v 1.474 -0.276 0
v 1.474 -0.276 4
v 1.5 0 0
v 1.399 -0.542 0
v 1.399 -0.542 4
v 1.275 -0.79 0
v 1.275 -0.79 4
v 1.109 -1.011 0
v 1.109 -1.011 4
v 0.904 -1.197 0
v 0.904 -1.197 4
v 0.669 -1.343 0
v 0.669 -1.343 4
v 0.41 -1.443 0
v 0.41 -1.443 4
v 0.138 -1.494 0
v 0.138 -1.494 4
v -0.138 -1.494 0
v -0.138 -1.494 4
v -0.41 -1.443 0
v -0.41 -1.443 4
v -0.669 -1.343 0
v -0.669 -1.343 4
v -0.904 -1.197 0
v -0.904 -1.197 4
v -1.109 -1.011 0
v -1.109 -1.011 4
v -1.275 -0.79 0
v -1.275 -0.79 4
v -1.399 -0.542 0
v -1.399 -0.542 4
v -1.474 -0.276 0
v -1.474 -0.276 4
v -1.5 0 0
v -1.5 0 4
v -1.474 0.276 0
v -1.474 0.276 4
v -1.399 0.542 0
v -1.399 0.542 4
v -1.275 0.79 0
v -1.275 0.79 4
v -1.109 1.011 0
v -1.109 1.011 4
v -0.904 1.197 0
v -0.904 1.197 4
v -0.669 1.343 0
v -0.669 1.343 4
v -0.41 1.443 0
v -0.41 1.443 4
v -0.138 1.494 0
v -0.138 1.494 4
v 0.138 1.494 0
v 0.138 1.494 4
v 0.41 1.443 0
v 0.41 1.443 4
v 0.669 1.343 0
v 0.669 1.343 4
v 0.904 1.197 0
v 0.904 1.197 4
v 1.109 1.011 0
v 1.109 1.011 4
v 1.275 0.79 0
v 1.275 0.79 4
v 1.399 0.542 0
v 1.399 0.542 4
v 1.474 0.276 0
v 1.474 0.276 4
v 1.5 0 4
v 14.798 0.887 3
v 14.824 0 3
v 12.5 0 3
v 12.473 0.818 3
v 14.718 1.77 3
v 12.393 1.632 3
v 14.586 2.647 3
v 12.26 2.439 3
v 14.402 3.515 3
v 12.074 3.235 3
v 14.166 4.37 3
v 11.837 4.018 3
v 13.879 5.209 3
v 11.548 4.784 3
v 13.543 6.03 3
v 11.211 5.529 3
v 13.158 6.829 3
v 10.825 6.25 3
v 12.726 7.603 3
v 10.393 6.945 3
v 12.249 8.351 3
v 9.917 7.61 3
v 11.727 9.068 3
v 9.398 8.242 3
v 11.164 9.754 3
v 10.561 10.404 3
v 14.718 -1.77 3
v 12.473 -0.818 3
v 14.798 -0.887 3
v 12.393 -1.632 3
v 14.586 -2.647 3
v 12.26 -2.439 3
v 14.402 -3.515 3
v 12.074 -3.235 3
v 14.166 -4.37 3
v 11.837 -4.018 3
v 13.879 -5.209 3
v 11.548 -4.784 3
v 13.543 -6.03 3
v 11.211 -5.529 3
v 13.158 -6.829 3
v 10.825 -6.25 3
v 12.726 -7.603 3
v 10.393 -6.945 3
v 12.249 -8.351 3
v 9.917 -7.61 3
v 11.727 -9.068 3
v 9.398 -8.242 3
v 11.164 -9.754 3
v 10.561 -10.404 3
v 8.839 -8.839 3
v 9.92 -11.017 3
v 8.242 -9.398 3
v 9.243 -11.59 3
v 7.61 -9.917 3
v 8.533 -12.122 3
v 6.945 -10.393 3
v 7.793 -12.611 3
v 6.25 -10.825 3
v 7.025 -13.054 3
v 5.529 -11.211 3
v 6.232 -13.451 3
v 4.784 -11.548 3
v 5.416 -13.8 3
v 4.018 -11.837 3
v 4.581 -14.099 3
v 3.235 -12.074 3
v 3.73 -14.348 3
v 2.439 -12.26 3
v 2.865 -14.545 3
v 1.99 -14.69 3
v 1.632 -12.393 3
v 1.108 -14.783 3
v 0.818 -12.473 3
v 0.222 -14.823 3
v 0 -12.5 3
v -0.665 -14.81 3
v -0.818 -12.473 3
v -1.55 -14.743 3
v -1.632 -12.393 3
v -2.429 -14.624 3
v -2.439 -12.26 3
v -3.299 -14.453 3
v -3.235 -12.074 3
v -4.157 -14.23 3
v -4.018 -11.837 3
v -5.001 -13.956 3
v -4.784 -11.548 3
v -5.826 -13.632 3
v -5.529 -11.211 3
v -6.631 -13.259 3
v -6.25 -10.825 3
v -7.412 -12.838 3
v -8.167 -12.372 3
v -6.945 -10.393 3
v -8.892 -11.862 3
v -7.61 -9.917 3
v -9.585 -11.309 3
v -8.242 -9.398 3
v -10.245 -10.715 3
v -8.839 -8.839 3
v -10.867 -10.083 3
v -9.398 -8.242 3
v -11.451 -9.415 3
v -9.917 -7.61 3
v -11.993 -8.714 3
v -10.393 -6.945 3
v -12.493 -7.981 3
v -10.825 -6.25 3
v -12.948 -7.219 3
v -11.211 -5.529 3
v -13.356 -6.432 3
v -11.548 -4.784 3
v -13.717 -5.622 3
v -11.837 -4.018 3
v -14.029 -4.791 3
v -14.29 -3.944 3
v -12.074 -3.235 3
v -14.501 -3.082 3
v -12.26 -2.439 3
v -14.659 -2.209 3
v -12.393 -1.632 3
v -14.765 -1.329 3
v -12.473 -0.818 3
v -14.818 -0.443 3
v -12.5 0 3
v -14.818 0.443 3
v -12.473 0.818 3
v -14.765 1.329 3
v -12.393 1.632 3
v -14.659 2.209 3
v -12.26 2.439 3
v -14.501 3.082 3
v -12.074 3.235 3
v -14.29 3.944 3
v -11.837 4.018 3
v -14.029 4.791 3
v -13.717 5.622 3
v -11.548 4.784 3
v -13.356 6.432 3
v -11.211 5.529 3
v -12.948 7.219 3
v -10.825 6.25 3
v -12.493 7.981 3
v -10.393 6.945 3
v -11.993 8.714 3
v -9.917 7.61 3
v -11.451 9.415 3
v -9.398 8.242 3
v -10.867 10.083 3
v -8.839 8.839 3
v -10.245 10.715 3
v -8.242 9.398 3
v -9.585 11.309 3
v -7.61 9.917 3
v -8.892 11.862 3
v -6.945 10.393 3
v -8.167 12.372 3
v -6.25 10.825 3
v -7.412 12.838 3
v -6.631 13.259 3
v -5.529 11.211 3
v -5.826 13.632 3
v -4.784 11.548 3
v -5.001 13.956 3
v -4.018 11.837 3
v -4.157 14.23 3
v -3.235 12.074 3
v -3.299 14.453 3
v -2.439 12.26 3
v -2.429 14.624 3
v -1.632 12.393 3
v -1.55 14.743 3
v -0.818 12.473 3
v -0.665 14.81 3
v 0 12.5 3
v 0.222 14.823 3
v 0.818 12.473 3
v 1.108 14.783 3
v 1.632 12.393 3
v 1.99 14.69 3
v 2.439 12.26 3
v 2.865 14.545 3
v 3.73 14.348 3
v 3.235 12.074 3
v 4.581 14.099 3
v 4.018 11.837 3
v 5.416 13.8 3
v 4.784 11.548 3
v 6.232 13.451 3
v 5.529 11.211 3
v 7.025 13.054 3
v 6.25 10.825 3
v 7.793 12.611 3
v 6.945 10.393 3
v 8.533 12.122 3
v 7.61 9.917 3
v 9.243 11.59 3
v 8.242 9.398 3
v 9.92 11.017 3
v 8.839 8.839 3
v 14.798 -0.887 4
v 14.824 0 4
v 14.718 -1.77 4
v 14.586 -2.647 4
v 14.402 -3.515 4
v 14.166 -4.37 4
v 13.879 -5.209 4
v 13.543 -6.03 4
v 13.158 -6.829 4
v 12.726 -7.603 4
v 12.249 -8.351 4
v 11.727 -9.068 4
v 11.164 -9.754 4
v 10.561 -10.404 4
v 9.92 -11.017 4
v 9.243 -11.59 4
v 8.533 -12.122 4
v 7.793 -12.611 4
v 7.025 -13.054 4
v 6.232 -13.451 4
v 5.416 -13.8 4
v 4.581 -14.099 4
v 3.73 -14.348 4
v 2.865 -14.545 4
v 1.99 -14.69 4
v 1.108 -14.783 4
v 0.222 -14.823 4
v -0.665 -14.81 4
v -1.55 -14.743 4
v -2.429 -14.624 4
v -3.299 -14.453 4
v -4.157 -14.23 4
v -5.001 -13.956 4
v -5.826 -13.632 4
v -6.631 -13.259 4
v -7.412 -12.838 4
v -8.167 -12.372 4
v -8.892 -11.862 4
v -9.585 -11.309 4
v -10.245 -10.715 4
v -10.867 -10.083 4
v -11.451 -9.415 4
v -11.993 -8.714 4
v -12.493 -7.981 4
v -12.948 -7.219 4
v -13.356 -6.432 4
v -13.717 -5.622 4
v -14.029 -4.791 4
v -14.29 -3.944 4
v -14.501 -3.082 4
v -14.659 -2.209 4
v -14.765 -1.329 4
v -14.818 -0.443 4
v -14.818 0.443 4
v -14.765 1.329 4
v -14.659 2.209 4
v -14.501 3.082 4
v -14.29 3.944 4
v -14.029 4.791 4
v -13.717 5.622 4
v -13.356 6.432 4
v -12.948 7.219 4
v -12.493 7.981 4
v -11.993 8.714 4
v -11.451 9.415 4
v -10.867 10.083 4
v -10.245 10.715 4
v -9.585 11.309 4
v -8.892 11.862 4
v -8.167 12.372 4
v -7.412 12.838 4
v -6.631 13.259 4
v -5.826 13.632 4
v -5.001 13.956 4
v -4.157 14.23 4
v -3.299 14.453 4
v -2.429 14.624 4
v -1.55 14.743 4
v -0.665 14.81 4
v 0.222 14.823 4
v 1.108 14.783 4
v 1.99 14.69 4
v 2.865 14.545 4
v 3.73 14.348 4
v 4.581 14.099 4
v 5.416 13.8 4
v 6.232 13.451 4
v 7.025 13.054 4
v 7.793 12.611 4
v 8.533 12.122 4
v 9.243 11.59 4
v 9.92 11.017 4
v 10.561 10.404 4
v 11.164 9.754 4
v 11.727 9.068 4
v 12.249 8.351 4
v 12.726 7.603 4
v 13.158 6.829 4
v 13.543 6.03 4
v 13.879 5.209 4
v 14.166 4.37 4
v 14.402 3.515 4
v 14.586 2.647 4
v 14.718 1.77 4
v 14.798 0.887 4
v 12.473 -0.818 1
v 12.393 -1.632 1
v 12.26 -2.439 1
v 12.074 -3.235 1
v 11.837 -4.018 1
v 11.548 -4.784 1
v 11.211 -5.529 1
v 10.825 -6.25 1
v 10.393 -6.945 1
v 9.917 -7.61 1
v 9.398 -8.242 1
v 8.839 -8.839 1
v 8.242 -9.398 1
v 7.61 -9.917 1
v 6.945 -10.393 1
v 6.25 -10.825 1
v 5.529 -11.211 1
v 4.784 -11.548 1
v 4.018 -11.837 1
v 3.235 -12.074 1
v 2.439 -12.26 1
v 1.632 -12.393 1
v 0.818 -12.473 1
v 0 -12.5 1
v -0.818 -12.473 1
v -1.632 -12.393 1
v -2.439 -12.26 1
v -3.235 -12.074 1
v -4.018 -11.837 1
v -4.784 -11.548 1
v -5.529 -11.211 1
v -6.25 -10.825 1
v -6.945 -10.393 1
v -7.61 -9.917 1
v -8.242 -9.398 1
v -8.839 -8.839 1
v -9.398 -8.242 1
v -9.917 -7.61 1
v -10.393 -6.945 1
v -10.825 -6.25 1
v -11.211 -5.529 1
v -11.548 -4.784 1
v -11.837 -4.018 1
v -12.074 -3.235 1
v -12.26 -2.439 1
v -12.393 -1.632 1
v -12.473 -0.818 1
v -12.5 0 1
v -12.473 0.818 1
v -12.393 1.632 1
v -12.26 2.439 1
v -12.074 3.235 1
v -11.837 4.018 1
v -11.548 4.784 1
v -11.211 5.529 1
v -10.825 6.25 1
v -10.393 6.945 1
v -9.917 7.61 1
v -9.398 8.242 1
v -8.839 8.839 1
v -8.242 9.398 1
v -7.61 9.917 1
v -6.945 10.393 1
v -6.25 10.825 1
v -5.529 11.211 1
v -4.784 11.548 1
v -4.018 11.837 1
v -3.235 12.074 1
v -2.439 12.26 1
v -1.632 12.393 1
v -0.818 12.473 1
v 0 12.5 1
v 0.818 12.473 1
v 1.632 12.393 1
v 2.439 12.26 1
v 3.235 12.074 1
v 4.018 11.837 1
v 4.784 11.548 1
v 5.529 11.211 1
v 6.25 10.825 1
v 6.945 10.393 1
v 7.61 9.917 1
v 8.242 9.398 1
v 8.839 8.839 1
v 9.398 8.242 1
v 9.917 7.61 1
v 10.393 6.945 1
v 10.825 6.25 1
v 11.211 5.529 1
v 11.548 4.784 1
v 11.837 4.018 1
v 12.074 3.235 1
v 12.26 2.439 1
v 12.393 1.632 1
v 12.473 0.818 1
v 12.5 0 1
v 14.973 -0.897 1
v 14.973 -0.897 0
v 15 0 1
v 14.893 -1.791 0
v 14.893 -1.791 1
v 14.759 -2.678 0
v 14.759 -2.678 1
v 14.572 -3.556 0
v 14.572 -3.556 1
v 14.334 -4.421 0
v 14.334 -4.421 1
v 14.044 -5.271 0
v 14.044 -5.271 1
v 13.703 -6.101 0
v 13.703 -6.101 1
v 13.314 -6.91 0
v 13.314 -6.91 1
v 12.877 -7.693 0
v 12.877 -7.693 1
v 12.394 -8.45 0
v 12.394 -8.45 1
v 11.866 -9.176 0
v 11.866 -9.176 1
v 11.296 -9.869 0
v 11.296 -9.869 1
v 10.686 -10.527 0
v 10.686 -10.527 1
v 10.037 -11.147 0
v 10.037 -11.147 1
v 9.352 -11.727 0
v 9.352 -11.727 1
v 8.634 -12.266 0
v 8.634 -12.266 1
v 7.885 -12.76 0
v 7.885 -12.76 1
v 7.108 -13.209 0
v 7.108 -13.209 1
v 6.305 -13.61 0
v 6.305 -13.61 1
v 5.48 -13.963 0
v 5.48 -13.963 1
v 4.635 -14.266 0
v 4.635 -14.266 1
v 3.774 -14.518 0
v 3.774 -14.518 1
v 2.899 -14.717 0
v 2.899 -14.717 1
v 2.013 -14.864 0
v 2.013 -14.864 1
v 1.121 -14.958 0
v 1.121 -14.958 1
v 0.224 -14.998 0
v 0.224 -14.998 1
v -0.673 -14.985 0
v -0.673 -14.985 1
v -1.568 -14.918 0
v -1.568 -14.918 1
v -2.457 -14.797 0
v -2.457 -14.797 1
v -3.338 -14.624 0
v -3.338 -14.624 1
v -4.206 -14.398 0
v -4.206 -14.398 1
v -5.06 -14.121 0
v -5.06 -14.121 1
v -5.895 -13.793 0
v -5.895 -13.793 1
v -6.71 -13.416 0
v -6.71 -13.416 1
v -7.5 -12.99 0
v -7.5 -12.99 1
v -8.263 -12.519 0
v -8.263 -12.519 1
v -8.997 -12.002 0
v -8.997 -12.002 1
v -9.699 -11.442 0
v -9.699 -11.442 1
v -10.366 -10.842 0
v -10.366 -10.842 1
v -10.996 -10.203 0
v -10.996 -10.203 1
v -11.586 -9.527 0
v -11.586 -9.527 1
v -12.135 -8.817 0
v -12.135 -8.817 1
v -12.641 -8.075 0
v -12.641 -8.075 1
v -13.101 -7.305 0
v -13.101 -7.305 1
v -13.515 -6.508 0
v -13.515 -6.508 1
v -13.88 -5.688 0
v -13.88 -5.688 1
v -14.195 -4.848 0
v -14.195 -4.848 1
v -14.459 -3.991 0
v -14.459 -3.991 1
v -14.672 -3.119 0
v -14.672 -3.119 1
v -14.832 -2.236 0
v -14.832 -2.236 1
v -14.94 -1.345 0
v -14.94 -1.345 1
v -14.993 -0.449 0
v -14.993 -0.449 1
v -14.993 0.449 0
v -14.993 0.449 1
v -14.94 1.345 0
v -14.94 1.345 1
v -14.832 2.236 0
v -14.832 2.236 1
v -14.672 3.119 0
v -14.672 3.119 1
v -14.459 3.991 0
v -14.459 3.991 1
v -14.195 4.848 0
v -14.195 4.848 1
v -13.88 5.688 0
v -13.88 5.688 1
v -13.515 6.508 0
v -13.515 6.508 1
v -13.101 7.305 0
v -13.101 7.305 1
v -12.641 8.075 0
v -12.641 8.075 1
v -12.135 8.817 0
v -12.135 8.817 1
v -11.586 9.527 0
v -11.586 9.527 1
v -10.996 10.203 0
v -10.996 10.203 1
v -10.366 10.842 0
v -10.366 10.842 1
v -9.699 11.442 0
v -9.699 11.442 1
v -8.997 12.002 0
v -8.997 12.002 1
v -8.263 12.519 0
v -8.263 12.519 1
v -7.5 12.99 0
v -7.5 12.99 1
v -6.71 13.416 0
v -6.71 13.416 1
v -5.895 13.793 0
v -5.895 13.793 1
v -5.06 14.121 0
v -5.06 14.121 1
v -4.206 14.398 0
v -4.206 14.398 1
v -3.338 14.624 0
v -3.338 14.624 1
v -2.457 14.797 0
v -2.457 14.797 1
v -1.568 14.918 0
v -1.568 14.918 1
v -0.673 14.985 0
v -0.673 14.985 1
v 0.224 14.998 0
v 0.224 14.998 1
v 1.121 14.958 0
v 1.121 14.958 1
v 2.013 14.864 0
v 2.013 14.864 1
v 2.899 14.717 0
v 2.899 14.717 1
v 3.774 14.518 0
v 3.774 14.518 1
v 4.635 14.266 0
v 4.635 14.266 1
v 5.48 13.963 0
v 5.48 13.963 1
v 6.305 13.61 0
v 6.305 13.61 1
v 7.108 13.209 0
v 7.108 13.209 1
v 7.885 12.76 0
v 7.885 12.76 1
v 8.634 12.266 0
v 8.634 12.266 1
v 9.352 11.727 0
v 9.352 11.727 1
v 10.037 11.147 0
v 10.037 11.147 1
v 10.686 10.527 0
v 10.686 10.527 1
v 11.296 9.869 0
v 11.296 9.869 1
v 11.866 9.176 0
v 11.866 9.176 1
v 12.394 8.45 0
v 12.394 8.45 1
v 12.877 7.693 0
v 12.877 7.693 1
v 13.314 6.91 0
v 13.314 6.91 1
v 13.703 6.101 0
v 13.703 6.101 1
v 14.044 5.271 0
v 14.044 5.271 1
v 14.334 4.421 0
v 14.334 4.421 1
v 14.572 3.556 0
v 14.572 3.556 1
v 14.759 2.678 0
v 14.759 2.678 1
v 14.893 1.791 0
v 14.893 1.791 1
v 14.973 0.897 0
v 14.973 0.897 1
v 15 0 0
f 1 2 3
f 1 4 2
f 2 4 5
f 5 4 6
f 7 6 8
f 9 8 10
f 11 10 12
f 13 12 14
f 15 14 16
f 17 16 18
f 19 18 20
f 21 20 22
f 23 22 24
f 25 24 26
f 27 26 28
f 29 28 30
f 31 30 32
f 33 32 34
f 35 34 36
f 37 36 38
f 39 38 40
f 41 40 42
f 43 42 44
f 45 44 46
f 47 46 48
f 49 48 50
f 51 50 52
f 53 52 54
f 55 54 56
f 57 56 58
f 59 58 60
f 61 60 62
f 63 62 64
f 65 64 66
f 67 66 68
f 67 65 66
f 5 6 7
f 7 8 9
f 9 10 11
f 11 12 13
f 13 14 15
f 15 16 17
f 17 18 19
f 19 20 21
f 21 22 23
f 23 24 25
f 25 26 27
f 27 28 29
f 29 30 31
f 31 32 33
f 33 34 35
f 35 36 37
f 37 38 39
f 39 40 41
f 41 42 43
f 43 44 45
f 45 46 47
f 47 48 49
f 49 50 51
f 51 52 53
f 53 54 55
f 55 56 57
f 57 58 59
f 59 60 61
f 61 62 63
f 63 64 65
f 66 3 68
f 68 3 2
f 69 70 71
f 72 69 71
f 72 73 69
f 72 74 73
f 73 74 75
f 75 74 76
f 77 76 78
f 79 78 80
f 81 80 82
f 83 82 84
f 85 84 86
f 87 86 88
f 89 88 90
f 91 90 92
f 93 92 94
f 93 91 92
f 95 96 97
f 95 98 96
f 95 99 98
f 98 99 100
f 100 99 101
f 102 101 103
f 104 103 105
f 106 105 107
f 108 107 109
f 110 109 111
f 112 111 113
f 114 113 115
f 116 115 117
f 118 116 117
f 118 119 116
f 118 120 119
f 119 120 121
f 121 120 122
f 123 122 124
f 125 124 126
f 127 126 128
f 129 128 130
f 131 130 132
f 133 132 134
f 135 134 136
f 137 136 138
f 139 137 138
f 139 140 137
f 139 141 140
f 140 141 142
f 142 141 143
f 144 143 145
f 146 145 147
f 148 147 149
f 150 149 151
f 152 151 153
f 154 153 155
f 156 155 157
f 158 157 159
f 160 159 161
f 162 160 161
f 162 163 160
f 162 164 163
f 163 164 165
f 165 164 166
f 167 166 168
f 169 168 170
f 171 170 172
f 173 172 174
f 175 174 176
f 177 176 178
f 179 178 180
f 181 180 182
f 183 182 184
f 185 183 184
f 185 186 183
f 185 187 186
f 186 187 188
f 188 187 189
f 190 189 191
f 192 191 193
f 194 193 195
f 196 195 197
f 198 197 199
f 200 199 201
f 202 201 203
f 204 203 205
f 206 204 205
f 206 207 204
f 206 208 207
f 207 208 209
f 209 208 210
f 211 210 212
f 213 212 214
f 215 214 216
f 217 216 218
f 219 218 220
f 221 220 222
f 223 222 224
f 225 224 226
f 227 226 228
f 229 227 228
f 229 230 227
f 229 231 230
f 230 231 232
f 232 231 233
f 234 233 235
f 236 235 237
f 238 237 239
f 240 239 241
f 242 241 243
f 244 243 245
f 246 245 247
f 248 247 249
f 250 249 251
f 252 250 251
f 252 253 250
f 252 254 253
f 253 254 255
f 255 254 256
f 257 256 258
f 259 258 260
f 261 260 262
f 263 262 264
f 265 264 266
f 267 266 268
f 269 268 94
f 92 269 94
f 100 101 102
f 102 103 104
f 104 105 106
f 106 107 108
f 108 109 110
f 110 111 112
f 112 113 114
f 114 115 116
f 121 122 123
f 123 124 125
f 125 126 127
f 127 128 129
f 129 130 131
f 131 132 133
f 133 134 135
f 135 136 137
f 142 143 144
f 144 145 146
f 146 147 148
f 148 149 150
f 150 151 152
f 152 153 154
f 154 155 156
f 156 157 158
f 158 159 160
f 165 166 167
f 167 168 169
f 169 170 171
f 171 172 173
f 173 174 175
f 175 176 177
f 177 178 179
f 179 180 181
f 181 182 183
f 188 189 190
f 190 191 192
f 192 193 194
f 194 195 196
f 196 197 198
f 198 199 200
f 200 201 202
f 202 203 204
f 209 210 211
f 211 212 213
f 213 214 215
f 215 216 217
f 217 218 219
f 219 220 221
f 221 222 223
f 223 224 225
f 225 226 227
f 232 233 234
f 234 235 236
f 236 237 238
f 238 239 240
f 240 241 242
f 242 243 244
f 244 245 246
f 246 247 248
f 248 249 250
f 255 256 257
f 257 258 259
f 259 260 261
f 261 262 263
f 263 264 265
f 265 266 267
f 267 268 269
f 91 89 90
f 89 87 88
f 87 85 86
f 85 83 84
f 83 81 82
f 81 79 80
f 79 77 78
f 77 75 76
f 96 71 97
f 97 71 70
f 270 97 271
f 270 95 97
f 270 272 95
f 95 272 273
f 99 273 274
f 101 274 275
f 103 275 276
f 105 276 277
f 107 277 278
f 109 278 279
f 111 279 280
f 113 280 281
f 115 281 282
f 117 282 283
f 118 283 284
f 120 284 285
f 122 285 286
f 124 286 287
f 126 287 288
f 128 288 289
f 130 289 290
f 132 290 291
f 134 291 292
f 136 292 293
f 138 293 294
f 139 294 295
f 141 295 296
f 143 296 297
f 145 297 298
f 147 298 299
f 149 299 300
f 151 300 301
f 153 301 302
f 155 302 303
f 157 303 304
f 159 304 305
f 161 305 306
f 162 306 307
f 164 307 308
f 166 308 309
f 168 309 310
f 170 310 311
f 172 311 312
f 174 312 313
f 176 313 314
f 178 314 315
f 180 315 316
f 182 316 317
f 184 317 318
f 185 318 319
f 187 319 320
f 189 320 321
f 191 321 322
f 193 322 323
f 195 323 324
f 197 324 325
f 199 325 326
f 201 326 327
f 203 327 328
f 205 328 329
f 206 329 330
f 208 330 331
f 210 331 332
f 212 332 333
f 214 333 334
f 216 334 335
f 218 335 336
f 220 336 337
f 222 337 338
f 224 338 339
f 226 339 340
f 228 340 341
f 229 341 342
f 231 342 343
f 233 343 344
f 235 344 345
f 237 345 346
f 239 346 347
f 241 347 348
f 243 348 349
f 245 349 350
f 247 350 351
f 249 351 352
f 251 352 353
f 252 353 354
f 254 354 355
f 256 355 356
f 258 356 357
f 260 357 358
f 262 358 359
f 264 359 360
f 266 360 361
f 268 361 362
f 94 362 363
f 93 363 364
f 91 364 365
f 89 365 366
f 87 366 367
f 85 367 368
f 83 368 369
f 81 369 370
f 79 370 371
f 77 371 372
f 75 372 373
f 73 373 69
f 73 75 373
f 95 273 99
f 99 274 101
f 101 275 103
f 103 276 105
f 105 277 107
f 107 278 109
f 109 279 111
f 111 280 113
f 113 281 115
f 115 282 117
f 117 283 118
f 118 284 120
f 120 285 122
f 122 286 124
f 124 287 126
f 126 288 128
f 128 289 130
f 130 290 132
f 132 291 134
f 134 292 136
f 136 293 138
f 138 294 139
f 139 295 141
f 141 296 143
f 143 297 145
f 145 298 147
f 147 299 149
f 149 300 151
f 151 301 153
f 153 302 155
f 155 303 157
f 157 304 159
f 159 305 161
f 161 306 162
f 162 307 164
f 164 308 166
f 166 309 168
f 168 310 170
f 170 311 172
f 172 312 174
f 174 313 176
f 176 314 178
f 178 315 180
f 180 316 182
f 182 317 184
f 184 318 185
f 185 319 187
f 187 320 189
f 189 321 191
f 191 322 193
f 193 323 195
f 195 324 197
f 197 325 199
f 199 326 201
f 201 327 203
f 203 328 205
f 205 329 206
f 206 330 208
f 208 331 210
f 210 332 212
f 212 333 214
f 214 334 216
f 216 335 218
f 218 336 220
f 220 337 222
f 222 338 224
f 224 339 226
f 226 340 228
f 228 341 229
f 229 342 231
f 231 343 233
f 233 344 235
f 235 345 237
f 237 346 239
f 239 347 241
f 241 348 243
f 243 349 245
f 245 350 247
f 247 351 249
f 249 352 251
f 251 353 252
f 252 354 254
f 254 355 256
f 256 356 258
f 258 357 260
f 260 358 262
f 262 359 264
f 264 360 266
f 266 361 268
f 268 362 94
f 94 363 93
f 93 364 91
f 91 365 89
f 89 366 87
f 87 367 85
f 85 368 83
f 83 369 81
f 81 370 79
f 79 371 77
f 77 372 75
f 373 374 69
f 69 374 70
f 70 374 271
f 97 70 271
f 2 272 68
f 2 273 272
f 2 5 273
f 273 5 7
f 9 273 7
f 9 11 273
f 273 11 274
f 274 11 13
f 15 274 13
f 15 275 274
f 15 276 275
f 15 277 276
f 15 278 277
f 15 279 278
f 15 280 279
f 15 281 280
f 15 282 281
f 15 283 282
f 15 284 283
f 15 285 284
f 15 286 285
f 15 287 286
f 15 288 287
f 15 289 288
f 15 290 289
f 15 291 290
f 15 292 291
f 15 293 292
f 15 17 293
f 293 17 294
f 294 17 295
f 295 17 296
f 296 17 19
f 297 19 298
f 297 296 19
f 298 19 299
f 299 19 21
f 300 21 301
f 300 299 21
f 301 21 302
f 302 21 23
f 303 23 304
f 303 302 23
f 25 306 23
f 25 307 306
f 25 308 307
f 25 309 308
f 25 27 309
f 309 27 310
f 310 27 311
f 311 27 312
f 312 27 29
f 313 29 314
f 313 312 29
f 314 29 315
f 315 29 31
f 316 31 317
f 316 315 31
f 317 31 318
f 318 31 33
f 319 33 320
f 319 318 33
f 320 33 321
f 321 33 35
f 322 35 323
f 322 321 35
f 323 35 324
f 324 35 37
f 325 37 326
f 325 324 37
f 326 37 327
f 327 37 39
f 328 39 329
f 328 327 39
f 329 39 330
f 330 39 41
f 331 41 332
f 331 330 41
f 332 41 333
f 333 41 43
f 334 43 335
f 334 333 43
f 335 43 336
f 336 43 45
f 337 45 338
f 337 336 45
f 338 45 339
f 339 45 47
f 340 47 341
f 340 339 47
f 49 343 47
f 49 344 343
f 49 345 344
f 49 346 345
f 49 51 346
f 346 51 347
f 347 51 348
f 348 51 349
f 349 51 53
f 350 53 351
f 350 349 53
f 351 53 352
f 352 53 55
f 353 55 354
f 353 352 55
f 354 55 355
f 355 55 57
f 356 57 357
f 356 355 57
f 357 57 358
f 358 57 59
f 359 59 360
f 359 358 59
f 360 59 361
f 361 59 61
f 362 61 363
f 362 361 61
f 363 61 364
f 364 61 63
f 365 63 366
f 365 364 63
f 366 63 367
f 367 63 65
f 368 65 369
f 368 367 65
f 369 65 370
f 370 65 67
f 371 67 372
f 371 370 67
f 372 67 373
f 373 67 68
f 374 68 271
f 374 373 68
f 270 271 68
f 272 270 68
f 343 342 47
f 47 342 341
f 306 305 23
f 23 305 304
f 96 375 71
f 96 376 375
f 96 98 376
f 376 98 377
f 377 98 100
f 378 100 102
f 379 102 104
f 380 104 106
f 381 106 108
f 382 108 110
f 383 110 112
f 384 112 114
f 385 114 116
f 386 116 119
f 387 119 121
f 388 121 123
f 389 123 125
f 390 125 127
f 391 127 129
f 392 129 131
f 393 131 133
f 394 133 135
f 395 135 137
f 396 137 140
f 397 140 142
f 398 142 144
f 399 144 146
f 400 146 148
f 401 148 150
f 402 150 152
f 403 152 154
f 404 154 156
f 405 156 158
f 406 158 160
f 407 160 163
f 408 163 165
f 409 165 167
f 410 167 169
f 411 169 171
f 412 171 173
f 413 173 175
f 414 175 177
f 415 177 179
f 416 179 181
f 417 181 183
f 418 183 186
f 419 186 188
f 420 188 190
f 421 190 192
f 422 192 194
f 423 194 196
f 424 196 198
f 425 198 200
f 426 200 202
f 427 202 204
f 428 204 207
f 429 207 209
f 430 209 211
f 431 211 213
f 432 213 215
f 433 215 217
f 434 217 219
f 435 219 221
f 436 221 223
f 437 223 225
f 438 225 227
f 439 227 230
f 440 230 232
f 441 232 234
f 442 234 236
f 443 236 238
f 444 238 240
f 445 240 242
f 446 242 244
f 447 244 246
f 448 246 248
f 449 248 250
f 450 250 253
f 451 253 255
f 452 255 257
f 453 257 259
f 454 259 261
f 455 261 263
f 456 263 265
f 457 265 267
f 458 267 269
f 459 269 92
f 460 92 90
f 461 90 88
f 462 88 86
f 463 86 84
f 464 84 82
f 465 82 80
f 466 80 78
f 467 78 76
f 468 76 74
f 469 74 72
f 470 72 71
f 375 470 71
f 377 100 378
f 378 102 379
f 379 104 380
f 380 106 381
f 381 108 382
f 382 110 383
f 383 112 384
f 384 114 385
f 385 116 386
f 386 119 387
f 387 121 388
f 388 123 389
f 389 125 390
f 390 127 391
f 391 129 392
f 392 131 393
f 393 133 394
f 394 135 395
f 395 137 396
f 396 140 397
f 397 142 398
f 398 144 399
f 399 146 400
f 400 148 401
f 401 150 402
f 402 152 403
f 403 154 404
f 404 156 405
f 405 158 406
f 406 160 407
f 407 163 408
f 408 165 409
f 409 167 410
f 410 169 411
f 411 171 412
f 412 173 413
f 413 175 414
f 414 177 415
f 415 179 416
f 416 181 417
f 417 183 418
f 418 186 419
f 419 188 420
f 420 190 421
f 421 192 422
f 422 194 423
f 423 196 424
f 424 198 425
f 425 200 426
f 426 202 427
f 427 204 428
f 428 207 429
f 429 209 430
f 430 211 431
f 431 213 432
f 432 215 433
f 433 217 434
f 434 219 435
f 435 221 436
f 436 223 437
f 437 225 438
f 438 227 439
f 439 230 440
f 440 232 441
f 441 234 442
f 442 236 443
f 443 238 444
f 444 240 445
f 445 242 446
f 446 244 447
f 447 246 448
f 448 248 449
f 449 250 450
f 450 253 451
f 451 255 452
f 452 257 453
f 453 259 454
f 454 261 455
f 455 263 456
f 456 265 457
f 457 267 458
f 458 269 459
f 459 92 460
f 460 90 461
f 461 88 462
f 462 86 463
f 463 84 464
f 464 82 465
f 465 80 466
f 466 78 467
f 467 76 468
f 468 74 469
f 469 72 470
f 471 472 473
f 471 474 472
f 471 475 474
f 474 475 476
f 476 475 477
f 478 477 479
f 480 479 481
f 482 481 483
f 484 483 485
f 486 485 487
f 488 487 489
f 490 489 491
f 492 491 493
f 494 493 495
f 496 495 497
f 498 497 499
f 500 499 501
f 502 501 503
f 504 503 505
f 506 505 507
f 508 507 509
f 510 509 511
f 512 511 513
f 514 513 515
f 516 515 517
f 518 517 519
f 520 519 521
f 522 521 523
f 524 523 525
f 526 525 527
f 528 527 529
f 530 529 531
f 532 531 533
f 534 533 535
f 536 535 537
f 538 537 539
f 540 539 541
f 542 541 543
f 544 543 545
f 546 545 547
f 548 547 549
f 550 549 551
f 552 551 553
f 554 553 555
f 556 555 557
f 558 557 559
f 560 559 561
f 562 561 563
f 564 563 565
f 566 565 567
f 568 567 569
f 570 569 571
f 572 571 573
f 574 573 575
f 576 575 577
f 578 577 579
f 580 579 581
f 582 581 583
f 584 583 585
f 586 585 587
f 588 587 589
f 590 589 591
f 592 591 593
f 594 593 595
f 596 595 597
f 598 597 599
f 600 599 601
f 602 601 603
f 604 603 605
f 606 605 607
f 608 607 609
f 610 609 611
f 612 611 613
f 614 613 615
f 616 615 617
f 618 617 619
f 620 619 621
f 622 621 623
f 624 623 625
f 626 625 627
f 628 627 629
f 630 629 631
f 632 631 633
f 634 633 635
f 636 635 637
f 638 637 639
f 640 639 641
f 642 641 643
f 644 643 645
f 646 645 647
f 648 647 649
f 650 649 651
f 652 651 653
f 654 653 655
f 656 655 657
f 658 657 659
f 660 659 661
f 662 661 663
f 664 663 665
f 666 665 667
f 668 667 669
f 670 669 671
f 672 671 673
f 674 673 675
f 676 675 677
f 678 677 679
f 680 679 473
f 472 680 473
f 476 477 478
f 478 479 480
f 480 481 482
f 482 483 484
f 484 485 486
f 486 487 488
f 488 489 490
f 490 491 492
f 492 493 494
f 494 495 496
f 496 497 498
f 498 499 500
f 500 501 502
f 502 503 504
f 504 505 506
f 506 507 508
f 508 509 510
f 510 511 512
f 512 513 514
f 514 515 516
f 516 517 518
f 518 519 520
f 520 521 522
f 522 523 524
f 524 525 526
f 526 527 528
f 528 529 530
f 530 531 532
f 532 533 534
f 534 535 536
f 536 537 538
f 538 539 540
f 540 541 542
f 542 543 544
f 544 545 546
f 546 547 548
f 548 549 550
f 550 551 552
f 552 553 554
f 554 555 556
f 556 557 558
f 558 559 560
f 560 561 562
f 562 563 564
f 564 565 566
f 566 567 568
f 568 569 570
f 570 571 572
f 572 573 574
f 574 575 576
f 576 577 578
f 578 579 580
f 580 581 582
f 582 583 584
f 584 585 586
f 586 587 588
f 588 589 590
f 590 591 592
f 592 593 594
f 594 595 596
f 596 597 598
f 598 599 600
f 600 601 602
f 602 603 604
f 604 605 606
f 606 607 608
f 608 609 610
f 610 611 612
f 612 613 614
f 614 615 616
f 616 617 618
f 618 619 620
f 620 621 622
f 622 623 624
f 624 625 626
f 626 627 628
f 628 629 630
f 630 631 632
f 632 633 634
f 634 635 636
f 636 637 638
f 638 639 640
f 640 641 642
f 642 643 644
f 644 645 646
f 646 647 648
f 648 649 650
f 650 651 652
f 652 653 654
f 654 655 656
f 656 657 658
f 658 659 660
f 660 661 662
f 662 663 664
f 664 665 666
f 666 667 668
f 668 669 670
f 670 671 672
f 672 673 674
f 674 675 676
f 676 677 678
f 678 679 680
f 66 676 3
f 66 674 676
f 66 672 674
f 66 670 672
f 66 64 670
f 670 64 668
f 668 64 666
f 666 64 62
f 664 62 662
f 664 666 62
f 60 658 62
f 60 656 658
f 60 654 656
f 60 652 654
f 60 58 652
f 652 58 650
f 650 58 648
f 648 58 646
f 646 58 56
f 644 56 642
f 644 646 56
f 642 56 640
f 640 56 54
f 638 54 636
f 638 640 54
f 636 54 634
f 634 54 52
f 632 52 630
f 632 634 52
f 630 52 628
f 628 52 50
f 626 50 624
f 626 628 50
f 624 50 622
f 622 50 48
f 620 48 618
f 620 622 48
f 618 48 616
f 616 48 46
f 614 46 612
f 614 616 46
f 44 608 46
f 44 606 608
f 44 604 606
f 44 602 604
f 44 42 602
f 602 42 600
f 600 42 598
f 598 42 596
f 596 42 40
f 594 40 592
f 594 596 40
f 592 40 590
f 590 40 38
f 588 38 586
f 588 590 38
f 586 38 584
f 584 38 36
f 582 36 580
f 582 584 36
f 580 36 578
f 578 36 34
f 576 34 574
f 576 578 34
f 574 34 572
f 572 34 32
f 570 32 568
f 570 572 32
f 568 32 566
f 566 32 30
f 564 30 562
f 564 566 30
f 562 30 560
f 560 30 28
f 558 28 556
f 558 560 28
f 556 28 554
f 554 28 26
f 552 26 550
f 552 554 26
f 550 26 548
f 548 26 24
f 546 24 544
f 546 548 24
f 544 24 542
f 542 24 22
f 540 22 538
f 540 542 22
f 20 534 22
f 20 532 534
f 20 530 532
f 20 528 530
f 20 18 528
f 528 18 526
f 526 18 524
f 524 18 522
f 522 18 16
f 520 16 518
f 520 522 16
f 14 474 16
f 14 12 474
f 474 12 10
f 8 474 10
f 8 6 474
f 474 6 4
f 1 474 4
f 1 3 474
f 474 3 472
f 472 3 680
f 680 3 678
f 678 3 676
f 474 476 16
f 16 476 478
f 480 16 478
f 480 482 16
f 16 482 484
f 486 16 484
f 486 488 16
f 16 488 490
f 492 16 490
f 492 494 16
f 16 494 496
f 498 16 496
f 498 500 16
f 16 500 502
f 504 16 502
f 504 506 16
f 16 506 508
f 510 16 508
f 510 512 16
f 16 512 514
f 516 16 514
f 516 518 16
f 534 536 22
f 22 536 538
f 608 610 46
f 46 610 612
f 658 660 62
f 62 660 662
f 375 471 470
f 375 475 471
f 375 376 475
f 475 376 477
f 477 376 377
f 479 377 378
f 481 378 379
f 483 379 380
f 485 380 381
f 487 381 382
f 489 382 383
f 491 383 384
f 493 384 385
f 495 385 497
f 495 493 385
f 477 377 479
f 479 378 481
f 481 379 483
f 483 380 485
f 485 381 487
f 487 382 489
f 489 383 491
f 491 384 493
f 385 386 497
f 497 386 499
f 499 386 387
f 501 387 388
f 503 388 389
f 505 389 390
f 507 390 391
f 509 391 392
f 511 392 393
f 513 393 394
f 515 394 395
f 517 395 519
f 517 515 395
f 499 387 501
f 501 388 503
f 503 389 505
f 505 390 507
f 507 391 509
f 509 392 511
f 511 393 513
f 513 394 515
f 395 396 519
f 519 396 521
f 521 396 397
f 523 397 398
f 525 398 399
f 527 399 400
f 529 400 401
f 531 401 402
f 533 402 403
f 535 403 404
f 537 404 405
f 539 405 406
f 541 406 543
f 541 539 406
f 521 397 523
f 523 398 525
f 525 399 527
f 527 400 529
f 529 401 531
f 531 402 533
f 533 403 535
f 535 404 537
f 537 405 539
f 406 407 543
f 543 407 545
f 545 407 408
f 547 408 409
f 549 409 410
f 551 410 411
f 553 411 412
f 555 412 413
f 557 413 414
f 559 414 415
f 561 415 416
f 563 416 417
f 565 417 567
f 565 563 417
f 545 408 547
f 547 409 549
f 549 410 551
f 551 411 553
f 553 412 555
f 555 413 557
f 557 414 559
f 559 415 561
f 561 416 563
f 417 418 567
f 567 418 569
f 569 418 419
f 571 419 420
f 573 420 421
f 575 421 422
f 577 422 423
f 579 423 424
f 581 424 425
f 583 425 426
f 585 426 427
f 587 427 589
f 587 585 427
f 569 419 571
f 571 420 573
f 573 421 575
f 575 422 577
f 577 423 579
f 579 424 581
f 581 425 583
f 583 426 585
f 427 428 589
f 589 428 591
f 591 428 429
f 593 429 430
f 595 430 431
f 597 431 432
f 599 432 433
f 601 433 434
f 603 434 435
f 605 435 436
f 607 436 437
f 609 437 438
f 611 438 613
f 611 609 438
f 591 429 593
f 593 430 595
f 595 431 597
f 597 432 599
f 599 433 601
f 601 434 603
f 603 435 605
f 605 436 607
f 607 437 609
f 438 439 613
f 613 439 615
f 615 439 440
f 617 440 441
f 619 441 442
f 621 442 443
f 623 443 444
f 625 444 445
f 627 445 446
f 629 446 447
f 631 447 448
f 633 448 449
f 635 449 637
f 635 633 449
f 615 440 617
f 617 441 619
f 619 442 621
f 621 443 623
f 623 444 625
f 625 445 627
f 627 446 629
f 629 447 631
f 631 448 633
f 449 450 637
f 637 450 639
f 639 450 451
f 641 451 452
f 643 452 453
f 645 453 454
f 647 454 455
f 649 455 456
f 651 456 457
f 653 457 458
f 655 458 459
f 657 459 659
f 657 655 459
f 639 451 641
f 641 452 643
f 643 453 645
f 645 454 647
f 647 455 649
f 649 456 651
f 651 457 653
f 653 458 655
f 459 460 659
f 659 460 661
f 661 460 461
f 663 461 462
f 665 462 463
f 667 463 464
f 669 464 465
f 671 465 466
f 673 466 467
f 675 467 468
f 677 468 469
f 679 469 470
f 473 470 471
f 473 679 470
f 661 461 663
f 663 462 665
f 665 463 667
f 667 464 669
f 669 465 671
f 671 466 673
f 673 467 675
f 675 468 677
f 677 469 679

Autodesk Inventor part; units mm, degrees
ref_plane "YZ Plane" through (0, 0, 0) normal (1, 0, 0) x (0, 1, 0)
ref_plane "XZ Plane" through (0, 0, 0) normal (0, 1, 0) x (-1, 0, 0)
ref_plane "XY Plane" through (0, 0, 0) normal (0, 0, 1) x (1, 0, 0)
sketch "Sketch1" plane through (0, 0, 0) normal (0, 0, 1) x (1, 0, 0)
  circle A0 centre (0, 0) radius 15
  dimension "d0" = 30
extrude "Extrusion1" add sketch "Sketch1" along normal blind 1
sketch "Sketch2" plane through (0, 0, 1) normal (0, 0, 1) x (1, 0, 0)
  circle A0 centre (0, 0) radius 12.5
  dimension "d3" = 25
extrude "Extrusion2" add sketch "Sketch2" along normal blind 2
sketch "Sketch3" plane through (0, 0, 3) normal (0, 0, 1) x (1, 0, 0)
  circle A0 centre (0, 0) radius 14.8245
extrude "Extrusion3" add sketch "Sketch3" along normal blind 1
sketch "Sketch4" plane through (0, 0, 4) normal (0, 0, 1) x (1, 0, 0)
  circle A0 centre (0, 0) radius 1.5
  dimension "d8" = 3
extrude "Extrusion4" cut sketch "Sketch4" against normal blind 5
properties part number "Pully Top"
